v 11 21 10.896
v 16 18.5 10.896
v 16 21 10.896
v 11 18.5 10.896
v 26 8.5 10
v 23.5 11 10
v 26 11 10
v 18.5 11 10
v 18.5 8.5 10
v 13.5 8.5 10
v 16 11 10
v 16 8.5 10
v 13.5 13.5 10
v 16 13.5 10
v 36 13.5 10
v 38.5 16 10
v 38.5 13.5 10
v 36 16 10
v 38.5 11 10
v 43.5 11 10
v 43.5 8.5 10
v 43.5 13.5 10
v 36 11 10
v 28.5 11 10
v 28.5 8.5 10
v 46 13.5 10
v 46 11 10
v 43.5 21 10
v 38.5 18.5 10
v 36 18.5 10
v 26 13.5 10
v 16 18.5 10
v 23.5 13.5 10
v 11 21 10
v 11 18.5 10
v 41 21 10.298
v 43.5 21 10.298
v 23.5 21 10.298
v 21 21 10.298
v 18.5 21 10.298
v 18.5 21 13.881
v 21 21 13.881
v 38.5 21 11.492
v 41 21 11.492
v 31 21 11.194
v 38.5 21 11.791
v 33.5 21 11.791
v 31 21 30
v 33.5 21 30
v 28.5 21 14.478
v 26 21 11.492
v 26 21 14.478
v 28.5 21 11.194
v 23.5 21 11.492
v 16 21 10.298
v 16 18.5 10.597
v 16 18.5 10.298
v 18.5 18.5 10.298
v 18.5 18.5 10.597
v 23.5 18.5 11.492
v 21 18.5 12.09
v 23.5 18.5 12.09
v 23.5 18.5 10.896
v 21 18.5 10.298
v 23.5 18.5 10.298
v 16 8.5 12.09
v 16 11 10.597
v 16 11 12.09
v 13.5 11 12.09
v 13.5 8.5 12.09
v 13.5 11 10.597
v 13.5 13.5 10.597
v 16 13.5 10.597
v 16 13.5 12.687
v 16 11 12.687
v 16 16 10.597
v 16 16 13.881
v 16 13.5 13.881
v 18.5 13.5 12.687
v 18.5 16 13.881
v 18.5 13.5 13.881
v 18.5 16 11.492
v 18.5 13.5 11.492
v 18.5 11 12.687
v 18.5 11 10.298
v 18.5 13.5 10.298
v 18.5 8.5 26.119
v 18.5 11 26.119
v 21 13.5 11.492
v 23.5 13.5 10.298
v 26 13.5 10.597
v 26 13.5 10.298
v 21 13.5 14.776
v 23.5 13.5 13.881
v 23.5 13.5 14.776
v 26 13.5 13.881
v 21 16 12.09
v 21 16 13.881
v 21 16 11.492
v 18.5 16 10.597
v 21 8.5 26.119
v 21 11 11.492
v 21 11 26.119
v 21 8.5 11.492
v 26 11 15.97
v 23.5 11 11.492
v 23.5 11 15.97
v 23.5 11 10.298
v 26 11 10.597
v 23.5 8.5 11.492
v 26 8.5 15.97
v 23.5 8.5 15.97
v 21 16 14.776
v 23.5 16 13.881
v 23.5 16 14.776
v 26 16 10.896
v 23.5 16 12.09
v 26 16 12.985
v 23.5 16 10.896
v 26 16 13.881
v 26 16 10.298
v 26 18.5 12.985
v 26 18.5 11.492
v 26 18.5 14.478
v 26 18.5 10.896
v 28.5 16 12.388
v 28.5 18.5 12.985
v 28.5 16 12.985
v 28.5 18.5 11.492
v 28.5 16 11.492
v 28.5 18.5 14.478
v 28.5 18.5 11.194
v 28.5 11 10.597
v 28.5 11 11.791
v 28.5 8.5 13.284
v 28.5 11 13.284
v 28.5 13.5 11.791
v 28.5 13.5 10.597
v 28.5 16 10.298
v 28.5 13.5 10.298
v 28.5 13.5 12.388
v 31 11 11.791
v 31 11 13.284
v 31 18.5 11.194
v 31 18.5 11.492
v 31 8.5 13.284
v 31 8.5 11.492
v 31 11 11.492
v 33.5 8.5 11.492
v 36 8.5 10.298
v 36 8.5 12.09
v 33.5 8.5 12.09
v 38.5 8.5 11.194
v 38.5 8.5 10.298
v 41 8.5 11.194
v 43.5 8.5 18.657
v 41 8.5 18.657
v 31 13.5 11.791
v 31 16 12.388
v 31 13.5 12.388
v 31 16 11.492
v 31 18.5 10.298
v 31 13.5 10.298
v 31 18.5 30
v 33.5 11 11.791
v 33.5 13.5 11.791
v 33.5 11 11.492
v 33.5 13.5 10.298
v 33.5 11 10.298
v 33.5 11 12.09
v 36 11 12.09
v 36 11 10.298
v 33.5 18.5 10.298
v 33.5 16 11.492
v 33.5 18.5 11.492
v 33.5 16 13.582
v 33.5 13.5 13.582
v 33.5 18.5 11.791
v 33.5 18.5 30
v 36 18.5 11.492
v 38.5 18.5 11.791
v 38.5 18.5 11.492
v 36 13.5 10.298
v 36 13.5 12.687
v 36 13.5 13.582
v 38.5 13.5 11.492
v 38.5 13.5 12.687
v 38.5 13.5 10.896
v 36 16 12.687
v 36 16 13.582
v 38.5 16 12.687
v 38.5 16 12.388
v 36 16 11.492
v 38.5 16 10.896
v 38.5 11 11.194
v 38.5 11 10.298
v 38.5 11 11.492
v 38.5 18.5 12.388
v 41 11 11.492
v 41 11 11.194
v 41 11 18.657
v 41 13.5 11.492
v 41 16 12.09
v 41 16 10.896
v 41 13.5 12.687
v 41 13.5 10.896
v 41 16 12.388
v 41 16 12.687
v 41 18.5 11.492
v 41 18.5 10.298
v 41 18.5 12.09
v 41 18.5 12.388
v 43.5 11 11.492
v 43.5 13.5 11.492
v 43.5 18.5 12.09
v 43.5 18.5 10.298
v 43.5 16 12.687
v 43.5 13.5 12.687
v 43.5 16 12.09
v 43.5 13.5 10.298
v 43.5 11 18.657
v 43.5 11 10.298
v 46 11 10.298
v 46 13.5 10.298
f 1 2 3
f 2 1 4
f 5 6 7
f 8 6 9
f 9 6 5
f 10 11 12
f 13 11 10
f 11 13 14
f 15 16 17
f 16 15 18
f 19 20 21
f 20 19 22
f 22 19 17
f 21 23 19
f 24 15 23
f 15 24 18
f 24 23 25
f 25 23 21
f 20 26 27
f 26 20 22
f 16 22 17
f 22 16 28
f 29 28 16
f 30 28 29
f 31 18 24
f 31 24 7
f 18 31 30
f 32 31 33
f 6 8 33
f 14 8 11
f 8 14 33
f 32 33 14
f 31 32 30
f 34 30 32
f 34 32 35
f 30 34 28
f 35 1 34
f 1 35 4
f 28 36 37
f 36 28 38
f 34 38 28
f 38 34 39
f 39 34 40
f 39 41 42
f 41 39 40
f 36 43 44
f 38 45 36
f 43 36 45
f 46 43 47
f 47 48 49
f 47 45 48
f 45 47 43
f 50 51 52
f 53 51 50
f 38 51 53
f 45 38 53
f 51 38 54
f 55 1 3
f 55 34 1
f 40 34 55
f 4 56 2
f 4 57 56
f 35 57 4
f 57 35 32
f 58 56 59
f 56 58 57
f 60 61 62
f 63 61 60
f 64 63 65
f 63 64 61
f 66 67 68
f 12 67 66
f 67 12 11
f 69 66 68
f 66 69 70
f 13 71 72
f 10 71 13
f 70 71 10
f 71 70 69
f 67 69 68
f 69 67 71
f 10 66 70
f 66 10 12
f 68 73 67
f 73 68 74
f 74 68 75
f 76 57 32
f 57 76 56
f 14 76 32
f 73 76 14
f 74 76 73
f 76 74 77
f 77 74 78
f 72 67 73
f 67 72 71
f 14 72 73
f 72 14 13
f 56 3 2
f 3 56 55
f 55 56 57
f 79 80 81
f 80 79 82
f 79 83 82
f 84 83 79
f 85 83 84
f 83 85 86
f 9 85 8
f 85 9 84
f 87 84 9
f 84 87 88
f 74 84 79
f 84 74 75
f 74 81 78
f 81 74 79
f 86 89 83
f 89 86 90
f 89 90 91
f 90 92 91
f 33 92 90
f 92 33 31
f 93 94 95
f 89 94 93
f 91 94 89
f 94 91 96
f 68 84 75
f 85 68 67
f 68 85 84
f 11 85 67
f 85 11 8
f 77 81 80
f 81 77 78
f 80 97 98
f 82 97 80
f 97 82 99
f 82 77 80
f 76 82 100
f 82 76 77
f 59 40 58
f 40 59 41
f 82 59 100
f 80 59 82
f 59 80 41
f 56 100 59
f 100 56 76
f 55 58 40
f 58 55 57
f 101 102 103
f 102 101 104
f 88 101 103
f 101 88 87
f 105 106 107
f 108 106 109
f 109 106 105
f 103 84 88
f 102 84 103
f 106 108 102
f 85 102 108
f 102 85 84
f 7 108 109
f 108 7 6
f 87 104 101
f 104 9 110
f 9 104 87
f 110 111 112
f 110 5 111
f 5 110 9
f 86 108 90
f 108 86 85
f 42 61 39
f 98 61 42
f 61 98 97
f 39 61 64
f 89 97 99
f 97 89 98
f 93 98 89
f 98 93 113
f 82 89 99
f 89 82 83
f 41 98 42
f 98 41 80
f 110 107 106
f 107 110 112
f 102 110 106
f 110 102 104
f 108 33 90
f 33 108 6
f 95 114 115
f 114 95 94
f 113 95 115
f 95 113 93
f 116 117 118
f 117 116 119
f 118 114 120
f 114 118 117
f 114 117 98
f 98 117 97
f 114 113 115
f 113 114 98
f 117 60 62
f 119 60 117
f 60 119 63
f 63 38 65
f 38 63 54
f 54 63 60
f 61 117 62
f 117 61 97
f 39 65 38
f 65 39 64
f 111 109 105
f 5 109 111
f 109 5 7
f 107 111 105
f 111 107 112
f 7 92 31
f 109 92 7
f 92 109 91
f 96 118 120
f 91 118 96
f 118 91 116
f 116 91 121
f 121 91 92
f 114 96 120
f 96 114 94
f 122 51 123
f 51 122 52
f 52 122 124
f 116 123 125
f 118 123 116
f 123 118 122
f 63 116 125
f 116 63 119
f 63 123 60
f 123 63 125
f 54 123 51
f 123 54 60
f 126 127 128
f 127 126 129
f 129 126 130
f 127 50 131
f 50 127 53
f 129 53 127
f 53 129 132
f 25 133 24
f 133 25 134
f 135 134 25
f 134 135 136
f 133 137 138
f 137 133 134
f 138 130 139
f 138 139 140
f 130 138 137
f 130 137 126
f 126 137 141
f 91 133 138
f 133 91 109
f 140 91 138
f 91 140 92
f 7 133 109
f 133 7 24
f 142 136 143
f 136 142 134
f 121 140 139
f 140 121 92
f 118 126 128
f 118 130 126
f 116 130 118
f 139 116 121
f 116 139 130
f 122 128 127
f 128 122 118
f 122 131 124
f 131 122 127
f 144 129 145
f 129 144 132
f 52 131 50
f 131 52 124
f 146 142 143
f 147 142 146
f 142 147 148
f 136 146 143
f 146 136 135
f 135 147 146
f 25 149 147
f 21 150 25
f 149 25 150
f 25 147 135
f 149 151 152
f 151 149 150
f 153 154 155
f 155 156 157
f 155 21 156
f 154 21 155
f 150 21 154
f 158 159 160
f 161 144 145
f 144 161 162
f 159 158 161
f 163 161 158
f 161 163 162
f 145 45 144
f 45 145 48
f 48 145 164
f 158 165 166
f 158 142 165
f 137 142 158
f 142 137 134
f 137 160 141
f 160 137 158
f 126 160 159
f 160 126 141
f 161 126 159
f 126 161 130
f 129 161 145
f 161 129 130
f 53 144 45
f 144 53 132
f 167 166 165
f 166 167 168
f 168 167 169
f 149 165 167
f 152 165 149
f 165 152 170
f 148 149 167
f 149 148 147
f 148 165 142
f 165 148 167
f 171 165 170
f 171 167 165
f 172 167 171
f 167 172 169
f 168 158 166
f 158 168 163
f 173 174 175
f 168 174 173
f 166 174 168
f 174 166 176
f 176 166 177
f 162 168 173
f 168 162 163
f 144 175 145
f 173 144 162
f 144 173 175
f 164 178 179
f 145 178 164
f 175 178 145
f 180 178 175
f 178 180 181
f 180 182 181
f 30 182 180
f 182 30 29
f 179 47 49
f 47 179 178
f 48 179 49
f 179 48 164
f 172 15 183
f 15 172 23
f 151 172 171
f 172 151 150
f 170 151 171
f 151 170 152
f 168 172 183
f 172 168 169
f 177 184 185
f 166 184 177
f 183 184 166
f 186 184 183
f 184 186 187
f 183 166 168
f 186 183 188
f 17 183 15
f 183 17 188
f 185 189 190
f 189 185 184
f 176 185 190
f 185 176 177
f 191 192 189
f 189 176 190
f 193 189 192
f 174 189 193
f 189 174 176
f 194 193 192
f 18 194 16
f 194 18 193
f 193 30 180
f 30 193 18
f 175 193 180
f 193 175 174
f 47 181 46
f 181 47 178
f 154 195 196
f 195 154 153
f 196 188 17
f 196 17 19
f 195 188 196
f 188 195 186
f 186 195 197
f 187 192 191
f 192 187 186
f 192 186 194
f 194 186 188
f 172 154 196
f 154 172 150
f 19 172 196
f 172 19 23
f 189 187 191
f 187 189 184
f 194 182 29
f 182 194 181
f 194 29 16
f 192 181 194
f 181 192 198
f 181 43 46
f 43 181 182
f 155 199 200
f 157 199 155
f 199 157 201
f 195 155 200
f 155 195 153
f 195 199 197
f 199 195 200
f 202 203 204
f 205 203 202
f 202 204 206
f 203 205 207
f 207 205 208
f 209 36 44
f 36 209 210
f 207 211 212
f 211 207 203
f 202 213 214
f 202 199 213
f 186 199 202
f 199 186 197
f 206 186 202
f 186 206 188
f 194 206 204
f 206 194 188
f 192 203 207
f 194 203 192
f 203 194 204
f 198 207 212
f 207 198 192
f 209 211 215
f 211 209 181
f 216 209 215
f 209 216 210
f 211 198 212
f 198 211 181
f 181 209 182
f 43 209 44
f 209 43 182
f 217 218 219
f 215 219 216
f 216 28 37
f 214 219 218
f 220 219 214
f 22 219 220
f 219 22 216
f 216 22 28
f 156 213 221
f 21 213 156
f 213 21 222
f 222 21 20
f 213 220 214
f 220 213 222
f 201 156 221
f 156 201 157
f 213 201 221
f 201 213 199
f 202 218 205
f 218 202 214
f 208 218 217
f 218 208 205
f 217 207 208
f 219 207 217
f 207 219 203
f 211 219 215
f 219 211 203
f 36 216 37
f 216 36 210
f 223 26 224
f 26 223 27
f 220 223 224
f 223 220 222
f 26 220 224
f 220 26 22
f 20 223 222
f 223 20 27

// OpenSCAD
union() {
	translate(v = [11.0, 18.5, 10]) {
		cube(size = [2.5, 2.5, 0.8955223880597015]);
	}
	translate(v = [13.5, 8.5, 10]) {
		cube(size = [2.5, 2.5, 2.08955223880597]);
	}
	translate(v = [13.5, 11.0, 10]) {
		cube(size = [2.5, 2.5, 0.5970149253731343]);
	}
	translate(v = [13.5, 18.5, 10]) {
		cube(size = [2.5, 2.5, 0.8955223880597015]);
	}
	translate(v = [16.0, 11.0, 10]) {
		cube(size = [2.5, 2.5, 2.6865671641791047]);
	}
	translate(v = [16.0, 13.5, 10]) {
		cube(size = [2.5, 2.5, 3.8805970149253732]);
	}
	translate(v = [16.0, 16.0, 10]) {
		cube(size = [2.5, 2.5, 0.5970149253731343]);
	}
	translate(v = [16.0, 18.5, 10]) {
		cube(size = [2.5, 2.5, 0.29850746268656714]);
	}
	translate(v = [18.5, 8.5, 10]) {
		cube(size = [2.5, 2.5, 16.119402985074625]);
	}
	translate(v = [18.5, 11.0, 10]) {
		cube(size = [2.5, 2.5, 0.29850746268656714]);
	}
	translate(v = [18.5, 13.5, 10]) {
		cube(size = [2.5, 2.5, 1.492537313432836]);
	}
	translate(v = [18.5, 16.0, 10]) {
		cube(size = [2.5, 2.5, 3.8805970149253732]);
	}
	translate(v = [18.5, 18.5, 10]) {
		cube(size = [2.5, 2.5, 3.8805970149253732]);
	}
	translate(v = [21.0, 8.5, 10]) {
		cube(size = [2.5, 2.5, 1.492537313432836]);
	}
	translate(v = [21.0, 11.0, 10]) {
		cube(size = [2.5, 2.5, 0.29850746268656714]);
	}
	translate(v = [21.0, 13.5, 10]) {
		cube(size = [2.5, 2.5, 4.776119402985074]);
	}
	translate(v = [21.0, 16.0, 10]) {
		cube(size = [2.5, 2.5, 2.08955223880597]);
	}
	translate(v = [21.0, 18.5, 10]) {
		cube(size = [2.5, 2.5, 0.29850746268656714]);
	}
	translate(v = [23.5, 8.5, 10]) {
		cube(size = [2.5, 2.5, 5.970149253731344]);
	}
	translate(v = [23.5, 13.5, 10]) {
		cube(size = [2.5, 2.5, 3.8805970149253732]);
	}
	translate(v = [23.5, 16.0, 10]) {
		cube(size = [2.5, 2.5, 0.8955223880597015]);
	}
	translate(v = [23.5, 18.5, 10]) {
		cube(size = [2.5, 2.5, 1.492537313432836]);
	}
	translate(v = [26.0, 11.0, 10]) {
		cube(size = [2.5, 2.5, 0.5970149253731343]);
	}
	translate(v = [26.0, 13.5, 10]) {
		cube(size = [2.5, 2.5, 0.29850746268656714]);
	}
	translate(v = [26.0, 16.0, 10]) {
		cube(size = [2.5, 2.5, 2.985074626865672]);
	}
	translate(v = [26.0, 18.5, 10]) {
		cube(size = [2.5, 2.5, 4.477611940298507]);
	}
	translate(v = [28.5, 8.5, 10]) {
		cube(size = [2.5, 2.5, 3.283582089552239]);
	}
	translate(v = [28.5, 11.0, 10]) {
		cube(size = [2.5, 2.5, 1.791044776119403]);
	}
	translate(v = [28.5, 13.5, 10]) {
		cube(size = [2.5, 2.5, 2.388059701492537]);
	}
	translate(v = [28.5, 16.0, 10]) {
		cube(size = [2.5, 2.5, 1.492537313432836]);
	}
	translate(v = [28.5, 18.5, 10]) {
		cube(size = [2.5, 2.5, 1.1940298507462686]);
	}
	translate(v = [31.0, 8.5, 10]) {
		cube(size = [2.5, 2.5, 1.492537313432836]);
	}
	translate(v = [31.0, 11.0, 10]) {
		cube(size = [2.5, 2.5, 1.791044776119403]);
	}
	translate(v = [31.0, 13.5, 10]) {
		cube(size = [2.5, 2.5, 0.29850746268656714]);
	}
	translate(v = [31.0, 16.0, 10]) {
		cube(size = [2.5, 2.5, 0.29850746268656714]);
	}
	translate(v = [31.0, 18.5, 10]) {
		cube(size = [2.5, 2.5, 20.0]);
	}
	translate(v = [33.5, 8.5, 10]) {
		cube(size = [2.5, 2.5, 2.08955223880597]);
	}
	translate(v = [33.5, 11.0, 10]) {
		cube(size = [2.5, 2.5, 0.29850746268656714]);
	}
	translate(v = [33.5, 13.5, 10]) {
		cube(size = [2.5, 2.5, 3.582089552238806]);
	}
	translate(v = [33.5, 16.0, 10]) {
		cube(size = [2.5, 2.5, 1.492537313432836]);
	}
	translate(v = [33.5, 18.5, 10]) {
		cube(size = [2.5, 2.5, 1.791044776119403]);
	}
	translate(v = [36.0, 8.5, 10]) {
		cube(size = [2.5, 2.5, 0.29850746268656714]);
	}
	translate(v = [36.0, 13.5, 10]) {
		cube(size = [2.5, 2.5, 2.6865671641791047]);
	}
	translate(v = [36.0, 18.5, 10]) {
		cube(size = [2.5, 2.5, 1.791044776119403]);
	}
	translate(v = [38.5, 8.5, 10]) {
		cube(size = [2.5, 2.5, 1.1940298507462686]);
	}
	translate(v = [38.5, 11.0, 10]) {
		cube(size = [2.5, 2.5, 1.492537313432836]);
	}
	translate(v = [38.5, 13.5, 10]) {
		cube(size = [2.5, 2.5, 0.8955223880597015]);
	}
	translate(v = [38.5, 16.0, 10]) {
		cube(size = [2.5, 2.5, 2.388059701492537]);
	}
	translate(v = [38.5, 18.5, 10]) {
		cube(size = [2.5, 2.5, 1.492537313432836]);
	}
	translate(v = [41.0, 8.5, 10]) {
		cube(size = [2.5, 2.5, 8.656716417910447]);
	}
	translate(v = [41.0, 11.0, 10]) {
		cube(size = [2.5, 2.5, 1.492537313432836]);
	}
	translate(v = [41.0, 13.5, 10]) {
		cube(size = [2.5, 2.5, 2.6865671641791047]);
	}
	translate(v = [41.0, 16.0, 10]) {
		cube(size = [2.5, 2.5, 2.08955223880597]);
	}
	translate(v = [41.0, 18.5, 10]) {
		cube(size = [2.5, 2.5, 0.29850746268656714]);
	}
	translate(v = [43.5, 11.0, 10]) {
		cube(size = [2.5, 2.5, 0.29850746268656714]);
	}
}
